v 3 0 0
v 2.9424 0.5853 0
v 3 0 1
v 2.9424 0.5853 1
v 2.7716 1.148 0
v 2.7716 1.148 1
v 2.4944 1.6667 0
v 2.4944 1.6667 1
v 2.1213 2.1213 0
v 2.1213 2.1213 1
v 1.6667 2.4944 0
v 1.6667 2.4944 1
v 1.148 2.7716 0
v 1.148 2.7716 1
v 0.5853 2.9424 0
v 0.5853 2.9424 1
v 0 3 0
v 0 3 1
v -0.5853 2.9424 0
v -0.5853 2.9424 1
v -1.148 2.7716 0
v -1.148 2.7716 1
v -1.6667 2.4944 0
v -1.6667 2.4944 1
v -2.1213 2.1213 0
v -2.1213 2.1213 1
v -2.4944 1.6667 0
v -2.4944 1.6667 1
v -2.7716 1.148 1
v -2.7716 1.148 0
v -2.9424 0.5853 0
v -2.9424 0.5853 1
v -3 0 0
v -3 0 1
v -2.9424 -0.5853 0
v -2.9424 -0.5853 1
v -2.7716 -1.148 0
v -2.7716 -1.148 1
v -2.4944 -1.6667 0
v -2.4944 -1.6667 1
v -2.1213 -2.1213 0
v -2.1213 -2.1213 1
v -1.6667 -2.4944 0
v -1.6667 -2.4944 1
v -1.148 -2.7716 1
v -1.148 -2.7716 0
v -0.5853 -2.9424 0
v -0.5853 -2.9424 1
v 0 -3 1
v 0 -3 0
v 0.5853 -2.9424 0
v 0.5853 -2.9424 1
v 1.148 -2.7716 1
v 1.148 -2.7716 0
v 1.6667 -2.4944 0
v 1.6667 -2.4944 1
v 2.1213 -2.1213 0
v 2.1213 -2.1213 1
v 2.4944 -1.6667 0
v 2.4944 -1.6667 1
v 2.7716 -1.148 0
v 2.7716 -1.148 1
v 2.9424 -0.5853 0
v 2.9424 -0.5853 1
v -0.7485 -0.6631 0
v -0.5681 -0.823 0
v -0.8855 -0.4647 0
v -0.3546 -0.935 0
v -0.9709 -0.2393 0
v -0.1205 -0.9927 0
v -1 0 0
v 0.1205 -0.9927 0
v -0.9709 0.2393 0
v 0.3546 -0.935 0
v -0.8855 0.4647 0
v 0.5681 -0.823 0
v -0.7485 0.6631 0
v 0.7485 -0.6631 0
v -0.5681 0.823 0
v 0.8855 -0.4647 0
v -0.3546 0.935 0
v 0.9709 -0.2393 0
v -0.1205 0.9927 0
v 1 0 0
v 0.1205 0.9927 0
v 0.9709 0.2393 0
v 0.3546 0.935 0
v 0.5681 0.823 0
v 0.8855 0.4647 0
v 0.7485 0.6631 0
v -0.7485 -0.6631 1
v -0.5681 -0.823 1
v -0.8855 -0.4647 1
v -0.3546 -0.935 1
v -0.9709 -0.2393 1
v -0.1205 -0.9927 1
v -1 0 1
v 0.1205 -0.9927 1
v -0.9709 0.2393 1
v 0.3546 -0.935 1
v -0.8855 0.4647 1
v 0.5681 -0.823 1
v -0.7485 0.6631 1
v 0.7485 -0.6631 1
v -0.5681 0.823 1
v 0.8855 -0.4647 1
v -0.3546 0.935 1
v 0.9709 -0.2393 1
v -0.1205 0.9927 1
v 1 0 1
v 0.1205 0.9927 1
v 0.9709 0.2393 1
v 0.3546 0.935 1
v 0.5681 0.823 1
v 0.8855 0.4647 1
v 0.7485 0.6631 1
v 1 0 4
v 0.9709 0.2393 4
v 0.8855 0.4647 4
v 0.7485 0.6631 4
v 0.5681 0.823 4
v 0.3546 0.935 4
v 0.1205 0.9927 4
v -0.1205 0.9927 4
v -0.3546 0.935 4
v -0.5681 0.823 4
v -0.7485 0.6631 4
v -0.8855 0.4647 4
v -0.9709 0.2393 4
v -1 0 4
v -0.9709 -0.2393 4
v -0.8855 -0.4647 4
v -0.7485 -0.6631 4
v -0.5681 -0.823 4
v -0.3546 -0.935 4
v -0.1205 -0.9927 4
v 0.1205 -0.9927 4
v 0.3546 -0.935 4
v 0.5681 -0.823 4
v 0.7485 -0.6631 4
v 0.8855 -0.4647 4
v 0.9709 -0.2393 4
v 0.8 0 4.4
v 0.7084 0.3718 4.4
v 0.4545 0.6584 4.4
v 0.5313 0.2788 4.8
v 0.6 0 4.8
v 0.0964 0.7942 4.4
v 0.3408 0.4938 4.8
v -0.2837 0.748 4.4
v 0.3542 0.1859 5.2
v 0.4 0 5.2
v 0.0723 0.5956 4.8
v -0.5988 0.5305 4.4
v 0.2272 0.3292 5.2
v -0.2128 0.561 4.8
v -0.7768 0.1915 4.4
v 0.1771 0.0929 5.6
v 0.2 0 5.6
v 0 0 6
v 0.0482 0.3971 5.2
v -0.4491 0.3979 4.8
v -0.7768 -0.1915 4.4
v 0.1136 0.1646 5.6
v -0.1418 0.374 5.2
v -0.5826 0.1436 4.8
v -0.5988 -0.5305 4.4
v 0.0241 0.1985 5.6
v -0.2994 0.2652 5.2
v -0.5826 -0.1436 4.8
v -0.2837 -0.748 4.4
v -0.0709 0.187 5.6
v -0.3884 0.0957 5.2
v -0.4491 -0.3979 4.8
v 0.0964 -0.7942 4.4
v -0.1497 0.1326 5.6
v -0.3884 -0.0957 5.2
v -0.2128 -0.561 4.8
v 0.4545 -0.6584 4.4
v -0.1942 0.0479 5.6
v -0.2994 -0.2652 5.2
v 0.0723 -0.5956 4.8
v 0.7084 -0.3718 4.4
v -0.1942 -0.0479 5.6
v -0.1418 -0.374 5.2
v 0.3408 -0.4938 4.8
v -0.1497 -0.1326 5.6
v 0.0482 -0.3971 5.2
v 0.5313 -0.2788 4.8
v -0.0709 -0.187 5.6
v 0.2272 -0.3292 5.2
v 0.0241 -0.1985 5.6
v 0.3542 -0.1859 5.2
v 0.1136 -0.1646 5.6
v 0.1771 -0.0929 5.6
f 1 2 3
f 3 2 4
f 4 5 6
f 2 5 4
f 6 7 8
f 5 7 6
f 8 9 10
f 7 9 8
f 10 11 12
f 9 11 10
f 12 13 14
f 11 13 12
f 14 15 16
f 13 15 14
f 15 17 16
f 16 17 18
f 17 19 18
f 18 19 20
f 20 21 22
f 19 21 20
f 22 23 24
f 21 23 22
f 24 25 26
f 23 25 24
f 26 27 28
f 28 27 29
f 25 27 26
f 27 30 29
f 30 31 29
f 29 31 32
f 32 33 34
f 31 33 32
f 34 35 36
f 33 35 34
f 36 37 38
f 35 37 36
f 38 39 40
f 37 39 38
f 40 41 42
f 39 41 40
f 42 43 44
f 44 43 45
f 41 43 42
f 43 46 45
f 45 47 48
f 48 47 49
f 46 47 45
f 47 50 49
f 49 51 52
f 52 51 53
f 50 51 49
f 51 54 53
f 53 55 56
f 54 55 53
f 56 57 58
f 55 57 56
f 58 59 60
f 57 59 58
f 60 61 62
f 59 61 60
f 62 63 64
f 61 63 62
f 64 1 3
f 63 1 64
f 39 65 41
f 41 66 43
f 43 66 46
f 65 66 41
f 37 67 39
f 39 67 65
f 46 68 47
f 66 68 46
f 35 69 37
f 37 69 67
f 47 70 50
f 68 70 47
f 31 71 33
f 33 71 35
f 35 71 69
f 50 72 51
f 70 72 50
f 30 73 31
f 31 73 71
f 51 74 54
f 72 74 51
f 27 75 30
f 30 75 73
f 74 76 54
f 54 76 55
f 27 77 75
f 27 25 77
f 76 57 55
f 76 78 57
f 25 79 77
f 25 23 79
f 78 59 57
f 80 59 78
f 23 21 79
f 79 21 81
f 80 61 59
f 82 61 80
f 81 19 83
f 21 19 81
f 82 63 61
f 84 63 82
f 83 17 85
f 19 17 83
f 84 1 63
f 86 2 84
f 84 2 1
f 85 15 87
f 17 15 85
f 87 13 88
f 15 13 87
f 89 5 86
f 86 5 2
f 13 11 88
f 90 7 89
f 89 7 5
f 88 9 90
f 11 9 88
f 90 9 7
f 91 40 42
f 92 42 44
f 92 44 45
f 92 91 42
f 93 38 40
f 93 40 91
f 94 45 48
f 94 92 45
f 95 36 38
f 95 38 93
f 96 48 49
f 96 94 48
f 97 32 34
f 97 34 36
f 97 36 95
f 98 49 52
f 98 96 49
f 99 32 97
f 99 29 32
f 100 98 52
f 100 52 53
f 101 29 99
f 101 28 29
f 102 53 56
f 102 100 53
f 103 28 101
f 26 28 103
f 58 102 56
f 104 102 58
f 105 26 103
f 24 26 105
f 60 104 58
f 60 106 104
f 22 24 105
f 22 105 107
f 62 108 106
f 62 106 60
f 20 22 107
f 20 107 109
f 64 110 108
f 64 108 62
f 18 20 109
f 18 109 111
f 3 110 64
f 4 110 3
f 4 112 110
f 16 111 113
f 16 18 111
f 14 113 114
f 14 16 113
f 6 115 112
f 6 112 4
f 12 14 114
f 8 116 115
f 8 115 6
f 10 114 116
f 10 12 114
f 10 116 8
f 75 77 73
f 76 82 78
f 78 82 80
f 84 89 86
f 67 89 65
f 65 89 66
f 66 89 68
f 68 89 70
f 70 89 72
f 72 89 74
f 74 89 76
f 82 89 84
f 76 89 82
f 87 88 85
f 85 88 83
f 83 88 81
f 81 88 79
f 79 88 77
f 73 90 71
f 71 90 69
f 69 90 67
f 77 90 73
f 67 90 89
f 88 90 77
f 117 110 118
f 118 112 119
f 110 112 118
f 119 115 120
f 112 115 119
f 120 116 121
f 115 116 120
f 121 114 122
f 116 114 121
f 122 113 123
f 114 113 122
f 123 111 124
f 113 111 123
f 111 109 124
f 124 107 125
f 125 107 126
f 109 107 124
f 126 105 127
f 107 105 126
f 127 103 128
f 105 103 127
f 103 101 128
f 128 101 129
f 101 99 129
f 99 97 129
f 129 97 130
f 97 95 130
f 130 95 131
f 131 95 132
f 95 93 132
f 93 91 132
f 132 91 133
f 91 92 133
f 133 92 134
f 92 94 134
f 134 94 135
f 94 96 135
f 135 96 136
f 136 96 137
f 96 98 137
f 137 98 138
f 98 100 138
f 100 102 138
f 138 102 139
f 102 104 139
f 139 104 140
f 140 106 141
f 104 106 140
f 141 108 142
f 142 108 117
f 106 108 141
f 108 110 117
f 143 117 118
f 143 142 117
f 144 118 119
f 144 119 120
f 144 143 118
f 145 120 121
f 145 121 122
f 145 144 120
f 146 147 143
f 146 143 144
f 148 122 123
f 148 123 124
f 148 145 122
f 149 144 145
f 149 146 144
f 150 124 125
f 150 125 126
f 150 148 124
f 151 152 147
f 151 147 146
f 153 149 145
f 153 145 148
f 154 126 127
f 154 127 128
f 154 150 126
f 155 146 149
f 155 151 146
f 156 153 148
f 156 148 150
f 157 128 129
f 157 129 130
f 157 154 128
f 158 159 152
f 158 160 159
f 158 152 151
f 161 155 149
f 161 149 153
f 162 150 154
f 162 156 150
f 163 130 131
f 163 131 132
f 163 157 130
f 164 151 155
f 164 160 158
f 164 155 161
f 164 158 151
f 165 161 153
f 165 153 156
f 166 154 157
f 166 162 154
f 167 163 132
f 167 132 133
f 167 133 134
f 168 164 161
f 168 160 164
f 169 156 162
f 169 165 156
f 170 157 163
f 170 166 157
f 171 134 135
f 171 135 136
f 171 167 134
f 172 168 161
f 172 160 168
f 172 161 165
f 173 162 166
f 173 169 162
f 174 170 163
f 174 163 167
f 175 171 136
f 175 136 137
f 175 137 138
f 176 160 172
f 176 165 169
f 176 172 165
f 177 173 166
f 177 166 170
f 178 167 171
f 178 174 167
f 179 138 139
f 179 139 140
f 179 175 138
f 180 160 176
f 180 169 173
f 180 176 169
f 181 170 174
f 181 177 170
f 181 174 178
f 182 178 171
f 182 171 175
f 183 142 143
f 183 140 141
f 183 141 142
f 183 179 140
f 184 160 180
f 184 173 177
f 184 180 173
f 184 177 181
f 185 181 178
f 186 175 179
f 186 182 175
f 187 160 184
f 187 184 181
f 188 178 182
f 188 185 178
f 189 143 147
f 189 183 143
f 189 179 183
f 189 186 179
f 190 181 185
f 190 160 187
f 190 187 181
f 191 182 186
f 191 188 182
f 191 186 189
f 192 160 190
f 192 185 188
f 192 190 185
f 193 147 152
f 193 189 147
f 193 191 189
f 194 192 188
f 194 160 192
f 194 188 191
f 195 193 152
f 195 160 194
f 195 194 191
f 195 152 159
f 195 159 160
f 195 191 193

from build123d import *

# Parameters (mm, degrees)
CYLINDER_R        = 3
CYLINDER_DEPTH    = 1
CYLINDER001_R     = 1
CYLINDER001_DEPTH = 4


with BuildPart() as part:
    # Cylinder → Cylinder (join)
    with BuildSketch(Plane.XY):
        Circle(CYLINDER_R)
    extrude(amount=CYLINDER_DEPTH)

    # Cylinder001 → Cylinder001 (join)
    with BuildSketch(Plane.XY):
        Circle(CYLINDER001_R)
    extrude(amount=CYLINDER001_DEPTH)

    # Cone → Cone (revolve)
    with BuildSketch(Plane(origin=(0, 0, 4), x_dir=(1, 0, 0), z_dir=(0, -1, 0))):
        Polygon((0, 0), (1, 0), (0, 2), align=None)
    revolve(axis=Axis((0, 0, 4), (0, 0, 1)))


solid = part.part
